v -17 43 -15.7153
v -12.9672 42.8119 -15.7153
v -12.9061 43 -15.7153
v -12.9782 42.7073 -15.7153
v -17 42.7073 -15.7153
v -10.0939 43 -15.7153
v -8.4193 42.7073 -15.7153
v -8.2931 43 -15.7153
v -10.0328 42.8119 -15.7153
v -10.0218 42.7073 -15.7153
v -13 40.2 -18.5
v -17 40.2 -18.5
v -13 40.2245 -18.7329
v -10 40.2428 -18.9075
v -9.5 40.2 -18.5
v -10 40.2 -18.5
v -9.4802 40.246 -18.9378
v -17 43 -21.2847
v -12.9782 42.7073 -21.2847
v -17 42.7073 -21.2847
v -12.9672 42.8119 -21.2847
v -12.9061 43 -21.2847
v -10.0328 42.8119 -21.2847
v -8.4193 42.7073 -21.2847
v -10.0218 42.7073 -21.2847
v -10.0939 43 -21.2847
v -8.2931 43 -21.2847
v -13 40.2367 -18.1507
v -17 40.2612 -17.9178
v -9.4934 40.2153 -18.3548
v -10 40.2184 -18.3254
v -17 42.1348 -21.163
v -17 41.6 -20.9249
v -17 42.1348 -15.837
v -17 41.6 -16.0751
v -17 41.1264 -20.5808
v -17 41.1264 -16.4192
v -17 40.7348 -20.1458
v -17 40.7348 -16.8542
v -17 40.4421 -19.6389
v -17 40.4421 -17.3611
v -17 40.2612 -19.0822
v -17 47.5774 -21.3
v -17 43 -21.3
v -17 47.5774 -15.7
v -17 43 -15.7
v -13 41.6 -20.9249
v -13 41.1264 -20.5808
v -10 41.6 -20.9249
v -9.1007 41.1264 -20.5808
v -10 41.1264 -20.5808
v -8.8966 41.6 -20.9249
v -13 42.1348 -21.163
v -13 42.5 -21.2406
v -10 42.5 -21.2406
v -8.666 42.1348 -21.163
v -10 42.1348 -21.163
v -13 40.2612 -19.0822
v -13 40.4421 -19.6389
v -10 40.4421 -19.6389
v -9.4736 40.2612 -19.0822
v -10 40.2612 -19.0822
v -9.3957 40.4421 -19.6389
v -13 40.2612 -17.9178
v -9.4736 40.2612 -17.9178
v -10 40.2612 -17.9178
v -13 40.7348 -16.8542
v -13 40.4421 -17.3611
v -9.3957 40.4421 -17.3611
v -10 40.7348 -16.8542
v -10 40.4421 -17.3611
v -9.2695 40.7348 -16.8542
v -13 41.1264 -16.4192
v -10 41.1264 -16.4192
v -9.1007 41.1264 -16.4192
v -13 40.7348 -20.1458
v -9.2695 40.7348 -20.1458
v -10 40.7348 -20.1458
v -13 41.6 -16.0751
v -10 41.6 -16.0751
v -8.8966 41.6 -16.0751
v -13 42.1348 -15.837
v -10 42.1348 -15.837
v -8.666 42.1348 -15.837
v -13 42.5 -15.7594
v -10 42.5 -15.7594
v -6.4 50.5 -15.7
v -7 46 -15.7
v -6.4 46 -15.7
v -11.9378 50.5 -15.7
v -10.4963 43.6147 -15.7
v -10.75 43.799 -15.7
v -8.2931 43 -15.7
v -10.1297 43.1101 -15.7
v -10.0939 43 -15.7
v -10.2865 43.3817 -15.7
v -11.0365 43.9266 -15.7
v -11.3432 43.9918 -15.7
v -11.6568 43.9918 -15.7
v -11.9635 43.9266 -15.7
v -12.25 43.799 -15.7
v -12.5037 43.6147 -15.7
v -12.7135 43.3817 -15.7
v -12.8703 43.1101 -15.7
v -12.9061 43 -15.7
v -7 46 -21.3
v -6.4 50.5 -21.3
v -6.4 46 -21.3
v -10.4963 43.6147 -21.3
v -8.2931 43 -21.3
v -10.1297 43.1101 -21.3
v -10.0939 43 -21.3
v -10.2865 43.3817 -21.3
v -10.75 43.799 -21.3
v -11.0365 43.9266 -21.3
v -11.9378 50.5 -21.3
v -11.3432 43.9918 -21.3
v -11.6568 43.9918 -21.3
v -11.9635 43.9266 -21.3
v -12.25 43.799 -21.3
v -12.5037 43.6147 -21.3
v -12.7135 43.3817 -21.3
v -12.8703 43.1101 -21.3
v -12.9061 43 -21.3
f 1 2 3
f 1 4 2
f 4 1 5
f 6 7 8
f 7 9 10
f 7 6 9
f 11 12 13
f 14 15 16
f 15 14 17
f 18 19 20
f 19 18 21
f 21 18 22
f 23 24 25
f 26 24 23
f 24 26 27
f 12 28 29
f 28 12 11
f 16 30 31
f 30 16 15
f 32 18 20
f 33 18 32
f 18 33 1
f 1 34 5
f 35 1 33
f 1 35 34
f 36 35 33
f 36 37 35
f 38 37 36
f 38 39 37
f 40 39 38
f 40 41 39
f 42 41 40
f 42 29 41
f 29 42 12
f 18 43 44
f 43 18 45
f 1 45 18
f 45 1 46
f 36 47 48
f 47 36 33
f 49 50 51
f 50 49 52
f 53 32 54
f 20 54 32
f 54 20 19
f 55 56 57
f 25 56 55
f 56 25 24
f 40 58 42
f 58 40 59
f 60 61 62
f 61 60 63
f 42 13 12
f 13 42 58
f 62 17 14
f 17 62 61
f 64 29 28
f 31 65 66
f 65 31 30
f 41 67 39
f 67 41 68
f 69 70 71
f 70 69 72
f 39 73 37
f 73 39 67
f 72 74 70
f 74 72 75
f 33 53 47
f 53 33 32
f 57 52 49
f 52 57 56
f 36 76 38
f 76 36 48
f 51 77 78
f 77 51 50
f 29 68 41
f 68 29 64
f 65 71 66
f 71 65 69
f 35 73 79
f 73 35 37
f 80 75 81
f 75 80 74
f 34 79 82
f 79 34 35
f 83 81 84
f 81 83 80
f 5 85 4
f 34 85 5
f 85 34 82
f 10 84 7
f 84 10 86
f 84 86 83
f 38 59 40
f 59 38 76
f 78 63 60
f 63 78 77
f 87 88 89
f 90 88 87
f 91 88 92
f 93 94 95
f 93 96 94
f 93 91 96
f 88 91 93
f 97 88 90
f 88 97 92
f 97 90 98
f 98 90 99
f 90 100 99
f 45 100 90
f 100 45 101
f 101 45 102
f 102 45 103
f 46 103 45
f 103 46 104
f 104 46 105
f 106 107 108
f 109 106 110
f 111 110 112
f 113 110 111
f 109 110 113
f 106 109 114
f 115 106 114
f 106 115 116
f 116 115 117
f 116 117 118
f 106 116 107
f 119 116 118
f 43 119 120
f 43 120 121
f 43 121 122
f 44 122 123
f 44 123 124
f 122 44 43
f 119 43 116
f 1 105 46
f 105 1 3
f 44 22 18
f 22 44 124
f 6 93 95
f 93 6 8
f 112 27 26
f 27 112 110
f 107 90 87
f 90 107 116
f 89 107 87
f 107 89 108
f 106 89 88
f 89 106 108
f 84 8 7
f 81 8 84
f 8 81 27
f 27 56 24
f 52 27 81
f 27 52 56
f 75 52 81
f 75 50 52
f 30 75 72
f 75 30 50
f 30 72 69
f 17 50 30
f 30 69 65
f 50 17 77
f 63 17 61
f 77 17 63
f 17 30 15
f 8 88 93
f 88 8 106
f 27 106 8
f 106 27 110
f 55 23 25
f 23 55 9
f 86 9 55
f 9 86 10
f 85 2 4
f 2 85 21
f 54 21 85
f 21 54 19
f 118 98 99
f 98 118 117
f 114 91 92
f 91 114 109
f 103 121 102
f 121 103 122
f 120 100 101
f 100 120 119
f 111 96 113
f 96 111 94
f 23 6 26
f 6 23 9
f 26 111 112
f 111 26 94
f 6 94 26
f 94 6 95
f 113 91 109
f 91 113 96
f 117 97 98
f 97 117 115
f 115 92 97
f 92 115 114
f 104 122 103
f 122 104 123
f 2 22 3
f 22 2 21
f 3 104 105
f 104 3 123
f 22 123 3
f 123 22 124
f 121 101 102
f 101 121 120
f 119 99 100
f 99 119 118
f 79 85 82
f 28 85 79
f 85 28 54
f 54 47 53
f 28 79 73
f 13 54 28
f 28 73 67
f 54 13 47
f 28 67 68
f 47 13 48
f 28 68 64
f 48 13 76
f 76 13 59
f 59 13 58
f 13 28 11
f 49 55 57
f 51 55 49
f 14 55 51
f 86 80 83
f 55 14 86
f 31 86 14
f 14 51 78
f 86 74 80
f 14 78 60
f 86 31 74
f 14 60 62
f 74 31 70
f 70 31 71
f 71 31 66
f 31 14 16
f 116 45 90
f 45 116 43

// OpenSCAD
// PRUSA iteration4
// Extruder idler plug
// GNU GPL v3
// Josef Průša <iam@josefprusa.cz> and contributors
// http://www.reprap.org/wiki/Prusa_Mendel
// http://prusamendel.org

module plug()
{
    difference()
        {
            union()
            {
            // Base shape    
            translate([-17,43,-18.5])  rotate([90,0,90]) cylinder( h=10, r=2.8, $fn=30 ); 
            translate([-17,43,-21.3]) cube([10,4+3.5,5.6]);
            translate([-17,43+3,-21.3]) cube([10.6,4.5,5.6]);
            }
        
            // chamfer for no direct laser reflection
            translate([0,0,-21.30]) linear_extrude(height = 5.6) polygon(points=[[-17+10,43+3],[-17+10,40.2],[-19.5+10,40.2]]);
        
            // Motor screw slot
            translate([-11.5,42.5,-32])  cylinder( h=30, r=1.5, $fn=30 ); 
            translate([-11.5-1.5,42.5-5,-25])  cube([3,5,10]); 
            
            // Pretty corner
            translate([-18,47,-32]) rotate([0,0,30]) cube([15,10,30]);
        }
}

rotate([0,0,0])
{ 
    plug();
}
